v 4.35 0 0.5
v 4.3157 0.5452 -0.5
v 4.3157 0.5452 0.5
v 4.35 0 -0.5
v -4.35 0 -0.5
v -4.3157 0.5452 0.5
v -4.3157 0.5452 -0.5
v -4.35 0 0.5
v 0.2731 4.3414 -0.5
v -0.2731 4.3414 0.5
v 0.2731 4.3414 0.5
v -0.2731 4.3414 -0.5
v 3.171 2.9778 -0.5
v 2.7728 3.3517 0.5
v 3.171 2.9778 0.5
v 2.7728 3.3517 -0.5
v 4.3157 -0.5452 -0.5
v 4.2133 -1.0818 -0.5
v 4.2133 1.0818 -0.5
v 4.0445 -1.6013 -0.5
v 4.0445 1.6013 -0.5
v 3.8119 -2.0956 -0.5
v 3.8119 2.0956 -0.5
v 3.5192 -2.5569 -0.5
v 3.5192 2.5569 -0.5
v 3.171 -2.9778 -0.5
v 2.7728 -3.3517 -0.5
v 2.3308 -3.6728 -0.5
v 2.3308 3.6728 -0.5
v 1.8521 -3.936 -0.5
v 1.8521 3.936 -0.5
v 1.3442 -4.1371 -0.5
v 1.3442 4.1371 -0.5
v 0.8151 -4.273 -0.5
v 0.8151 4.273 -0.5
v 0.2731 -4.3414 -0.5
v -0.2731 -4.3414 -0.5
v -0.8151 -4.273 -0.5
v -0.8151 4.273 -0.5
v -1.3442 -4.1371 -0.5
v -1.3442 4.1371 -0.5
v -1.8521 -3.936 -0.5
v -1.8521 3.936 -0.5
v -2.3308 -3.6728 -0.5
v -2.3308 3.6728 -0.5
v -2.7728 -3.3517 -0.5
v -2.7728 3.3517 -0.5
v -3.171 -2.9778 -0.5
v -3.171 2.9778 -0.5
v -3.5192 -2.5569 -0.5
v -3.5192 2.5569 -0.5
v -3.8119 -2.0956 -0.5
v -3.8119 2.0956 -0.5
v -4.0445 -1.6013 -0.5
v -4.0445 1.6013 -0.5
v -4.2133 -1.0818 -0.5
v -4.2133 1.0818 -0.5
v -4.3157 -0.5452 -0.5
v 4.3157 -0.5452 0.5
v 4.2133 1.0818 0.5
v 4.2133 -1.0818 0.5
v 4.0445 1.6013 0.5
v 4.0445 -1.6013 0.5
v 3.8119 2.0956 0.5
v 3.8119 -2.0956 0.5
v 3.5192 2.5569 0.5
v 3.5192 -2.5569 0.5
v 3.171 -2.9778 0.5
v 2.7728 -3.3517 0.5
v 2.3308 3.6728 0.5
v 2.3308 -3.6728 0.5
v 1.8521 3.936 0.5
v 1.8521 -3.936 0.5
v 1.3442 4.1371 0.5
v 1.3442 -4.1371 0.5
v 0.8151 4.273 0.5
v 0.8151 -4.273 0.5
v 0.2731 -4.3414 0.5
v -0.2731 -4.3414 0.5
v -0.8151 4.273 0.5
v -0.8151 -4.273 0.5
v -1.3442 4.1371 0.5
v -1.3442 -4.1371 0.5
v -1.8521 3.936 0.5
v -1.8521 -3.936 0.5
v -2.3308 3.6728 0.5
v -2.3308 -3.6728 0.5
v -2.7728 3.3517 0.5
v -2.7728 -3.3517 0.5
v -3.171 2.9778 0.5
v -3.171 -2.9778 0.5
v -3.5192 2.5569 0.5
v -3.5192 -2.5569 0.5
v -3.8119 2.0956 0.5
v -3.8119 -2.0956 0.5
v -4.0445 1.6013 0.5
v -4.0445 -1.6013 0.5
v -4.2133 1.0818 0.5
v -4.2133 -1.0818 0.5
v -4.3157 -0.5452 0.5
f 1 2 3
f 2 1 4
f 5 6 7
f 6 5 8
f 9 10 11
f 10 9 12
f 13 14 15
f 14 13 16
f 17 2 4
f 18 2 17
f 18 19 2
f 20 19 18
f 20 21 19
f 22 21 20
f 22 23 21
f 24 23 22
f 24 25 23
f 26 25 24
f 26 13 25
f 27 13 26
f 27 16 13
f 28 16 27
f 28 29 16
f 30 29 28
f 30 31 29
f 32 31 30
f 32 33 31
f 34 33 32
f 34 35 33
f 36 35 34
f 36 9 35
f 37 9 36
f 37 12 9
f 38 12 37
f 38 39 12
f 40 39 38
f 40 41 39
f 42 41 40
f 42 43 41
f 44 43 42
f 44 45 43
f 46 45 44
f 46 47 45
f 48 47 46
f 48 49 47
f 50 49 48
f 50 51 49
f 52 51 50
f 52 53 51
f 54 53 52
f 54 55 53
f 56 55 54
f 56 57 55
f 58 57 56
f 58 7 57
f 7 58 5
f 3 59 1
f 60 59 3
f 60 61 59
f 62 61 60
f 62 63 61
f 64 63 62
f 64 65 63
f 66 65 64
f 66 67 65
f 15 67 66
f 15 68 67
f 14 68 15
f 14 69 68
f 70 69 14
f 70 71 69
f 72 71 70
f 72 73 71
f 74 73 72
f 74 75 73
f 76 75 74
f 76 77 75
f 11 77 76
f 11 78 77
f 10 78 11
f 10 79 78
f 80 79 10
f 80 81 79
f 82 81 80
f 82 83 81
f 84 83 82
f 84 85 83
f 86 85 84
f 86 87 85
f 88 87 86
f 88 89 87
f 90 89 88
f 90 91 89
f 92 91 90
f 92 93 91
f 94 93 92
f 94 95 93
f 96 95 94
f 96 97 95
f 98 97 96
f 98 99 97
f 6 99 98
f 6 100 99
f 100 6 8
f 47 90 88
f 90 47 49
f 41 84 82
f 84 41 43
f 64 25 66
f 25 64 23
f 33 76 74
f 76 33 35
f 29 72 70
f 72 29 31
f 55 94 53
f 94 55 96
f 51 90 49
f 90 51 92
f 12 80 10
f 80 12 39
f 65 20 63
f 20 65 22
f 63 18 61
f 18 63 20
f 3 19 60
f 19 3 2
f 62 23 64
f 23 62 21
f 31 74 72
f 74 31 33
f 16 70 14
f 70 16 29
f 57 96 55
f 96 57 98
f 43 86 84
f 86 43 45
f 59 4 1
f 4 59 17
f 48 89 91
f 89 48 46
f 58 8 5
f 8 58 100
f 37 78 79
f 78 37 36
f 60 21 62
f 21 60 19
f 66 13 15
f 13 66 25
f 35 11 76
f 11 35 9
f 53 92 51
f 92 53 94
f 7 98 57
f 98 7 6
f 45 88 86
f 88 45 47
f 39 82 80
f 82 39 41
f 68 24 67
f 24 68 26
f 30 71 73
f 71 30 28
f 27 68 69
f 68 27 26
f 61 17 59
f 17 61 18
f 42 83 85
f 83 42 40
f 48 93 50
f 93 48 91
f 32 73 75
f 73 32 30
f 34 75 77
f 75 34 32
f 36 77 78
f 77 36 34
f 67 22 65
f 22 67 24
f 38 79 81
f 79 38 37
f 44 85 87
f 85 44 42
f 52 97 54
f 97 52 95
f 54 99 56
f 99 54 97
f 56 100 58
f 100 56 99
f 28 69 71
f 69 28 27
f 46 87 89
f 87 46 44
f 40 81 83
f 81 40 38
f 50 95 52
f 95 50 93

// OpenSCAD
$fn = 50;


difference() {
	union() {
		translate(v = [0, 0, -0.5000000000]) {
			cylinder(h = 1, r = 4.3500000000);
		}
	}
	union() {
		translate(v = [0, 0, -100.0000000000]) {
			cylinder(h = 200, r = 0);
		}
	}
}
